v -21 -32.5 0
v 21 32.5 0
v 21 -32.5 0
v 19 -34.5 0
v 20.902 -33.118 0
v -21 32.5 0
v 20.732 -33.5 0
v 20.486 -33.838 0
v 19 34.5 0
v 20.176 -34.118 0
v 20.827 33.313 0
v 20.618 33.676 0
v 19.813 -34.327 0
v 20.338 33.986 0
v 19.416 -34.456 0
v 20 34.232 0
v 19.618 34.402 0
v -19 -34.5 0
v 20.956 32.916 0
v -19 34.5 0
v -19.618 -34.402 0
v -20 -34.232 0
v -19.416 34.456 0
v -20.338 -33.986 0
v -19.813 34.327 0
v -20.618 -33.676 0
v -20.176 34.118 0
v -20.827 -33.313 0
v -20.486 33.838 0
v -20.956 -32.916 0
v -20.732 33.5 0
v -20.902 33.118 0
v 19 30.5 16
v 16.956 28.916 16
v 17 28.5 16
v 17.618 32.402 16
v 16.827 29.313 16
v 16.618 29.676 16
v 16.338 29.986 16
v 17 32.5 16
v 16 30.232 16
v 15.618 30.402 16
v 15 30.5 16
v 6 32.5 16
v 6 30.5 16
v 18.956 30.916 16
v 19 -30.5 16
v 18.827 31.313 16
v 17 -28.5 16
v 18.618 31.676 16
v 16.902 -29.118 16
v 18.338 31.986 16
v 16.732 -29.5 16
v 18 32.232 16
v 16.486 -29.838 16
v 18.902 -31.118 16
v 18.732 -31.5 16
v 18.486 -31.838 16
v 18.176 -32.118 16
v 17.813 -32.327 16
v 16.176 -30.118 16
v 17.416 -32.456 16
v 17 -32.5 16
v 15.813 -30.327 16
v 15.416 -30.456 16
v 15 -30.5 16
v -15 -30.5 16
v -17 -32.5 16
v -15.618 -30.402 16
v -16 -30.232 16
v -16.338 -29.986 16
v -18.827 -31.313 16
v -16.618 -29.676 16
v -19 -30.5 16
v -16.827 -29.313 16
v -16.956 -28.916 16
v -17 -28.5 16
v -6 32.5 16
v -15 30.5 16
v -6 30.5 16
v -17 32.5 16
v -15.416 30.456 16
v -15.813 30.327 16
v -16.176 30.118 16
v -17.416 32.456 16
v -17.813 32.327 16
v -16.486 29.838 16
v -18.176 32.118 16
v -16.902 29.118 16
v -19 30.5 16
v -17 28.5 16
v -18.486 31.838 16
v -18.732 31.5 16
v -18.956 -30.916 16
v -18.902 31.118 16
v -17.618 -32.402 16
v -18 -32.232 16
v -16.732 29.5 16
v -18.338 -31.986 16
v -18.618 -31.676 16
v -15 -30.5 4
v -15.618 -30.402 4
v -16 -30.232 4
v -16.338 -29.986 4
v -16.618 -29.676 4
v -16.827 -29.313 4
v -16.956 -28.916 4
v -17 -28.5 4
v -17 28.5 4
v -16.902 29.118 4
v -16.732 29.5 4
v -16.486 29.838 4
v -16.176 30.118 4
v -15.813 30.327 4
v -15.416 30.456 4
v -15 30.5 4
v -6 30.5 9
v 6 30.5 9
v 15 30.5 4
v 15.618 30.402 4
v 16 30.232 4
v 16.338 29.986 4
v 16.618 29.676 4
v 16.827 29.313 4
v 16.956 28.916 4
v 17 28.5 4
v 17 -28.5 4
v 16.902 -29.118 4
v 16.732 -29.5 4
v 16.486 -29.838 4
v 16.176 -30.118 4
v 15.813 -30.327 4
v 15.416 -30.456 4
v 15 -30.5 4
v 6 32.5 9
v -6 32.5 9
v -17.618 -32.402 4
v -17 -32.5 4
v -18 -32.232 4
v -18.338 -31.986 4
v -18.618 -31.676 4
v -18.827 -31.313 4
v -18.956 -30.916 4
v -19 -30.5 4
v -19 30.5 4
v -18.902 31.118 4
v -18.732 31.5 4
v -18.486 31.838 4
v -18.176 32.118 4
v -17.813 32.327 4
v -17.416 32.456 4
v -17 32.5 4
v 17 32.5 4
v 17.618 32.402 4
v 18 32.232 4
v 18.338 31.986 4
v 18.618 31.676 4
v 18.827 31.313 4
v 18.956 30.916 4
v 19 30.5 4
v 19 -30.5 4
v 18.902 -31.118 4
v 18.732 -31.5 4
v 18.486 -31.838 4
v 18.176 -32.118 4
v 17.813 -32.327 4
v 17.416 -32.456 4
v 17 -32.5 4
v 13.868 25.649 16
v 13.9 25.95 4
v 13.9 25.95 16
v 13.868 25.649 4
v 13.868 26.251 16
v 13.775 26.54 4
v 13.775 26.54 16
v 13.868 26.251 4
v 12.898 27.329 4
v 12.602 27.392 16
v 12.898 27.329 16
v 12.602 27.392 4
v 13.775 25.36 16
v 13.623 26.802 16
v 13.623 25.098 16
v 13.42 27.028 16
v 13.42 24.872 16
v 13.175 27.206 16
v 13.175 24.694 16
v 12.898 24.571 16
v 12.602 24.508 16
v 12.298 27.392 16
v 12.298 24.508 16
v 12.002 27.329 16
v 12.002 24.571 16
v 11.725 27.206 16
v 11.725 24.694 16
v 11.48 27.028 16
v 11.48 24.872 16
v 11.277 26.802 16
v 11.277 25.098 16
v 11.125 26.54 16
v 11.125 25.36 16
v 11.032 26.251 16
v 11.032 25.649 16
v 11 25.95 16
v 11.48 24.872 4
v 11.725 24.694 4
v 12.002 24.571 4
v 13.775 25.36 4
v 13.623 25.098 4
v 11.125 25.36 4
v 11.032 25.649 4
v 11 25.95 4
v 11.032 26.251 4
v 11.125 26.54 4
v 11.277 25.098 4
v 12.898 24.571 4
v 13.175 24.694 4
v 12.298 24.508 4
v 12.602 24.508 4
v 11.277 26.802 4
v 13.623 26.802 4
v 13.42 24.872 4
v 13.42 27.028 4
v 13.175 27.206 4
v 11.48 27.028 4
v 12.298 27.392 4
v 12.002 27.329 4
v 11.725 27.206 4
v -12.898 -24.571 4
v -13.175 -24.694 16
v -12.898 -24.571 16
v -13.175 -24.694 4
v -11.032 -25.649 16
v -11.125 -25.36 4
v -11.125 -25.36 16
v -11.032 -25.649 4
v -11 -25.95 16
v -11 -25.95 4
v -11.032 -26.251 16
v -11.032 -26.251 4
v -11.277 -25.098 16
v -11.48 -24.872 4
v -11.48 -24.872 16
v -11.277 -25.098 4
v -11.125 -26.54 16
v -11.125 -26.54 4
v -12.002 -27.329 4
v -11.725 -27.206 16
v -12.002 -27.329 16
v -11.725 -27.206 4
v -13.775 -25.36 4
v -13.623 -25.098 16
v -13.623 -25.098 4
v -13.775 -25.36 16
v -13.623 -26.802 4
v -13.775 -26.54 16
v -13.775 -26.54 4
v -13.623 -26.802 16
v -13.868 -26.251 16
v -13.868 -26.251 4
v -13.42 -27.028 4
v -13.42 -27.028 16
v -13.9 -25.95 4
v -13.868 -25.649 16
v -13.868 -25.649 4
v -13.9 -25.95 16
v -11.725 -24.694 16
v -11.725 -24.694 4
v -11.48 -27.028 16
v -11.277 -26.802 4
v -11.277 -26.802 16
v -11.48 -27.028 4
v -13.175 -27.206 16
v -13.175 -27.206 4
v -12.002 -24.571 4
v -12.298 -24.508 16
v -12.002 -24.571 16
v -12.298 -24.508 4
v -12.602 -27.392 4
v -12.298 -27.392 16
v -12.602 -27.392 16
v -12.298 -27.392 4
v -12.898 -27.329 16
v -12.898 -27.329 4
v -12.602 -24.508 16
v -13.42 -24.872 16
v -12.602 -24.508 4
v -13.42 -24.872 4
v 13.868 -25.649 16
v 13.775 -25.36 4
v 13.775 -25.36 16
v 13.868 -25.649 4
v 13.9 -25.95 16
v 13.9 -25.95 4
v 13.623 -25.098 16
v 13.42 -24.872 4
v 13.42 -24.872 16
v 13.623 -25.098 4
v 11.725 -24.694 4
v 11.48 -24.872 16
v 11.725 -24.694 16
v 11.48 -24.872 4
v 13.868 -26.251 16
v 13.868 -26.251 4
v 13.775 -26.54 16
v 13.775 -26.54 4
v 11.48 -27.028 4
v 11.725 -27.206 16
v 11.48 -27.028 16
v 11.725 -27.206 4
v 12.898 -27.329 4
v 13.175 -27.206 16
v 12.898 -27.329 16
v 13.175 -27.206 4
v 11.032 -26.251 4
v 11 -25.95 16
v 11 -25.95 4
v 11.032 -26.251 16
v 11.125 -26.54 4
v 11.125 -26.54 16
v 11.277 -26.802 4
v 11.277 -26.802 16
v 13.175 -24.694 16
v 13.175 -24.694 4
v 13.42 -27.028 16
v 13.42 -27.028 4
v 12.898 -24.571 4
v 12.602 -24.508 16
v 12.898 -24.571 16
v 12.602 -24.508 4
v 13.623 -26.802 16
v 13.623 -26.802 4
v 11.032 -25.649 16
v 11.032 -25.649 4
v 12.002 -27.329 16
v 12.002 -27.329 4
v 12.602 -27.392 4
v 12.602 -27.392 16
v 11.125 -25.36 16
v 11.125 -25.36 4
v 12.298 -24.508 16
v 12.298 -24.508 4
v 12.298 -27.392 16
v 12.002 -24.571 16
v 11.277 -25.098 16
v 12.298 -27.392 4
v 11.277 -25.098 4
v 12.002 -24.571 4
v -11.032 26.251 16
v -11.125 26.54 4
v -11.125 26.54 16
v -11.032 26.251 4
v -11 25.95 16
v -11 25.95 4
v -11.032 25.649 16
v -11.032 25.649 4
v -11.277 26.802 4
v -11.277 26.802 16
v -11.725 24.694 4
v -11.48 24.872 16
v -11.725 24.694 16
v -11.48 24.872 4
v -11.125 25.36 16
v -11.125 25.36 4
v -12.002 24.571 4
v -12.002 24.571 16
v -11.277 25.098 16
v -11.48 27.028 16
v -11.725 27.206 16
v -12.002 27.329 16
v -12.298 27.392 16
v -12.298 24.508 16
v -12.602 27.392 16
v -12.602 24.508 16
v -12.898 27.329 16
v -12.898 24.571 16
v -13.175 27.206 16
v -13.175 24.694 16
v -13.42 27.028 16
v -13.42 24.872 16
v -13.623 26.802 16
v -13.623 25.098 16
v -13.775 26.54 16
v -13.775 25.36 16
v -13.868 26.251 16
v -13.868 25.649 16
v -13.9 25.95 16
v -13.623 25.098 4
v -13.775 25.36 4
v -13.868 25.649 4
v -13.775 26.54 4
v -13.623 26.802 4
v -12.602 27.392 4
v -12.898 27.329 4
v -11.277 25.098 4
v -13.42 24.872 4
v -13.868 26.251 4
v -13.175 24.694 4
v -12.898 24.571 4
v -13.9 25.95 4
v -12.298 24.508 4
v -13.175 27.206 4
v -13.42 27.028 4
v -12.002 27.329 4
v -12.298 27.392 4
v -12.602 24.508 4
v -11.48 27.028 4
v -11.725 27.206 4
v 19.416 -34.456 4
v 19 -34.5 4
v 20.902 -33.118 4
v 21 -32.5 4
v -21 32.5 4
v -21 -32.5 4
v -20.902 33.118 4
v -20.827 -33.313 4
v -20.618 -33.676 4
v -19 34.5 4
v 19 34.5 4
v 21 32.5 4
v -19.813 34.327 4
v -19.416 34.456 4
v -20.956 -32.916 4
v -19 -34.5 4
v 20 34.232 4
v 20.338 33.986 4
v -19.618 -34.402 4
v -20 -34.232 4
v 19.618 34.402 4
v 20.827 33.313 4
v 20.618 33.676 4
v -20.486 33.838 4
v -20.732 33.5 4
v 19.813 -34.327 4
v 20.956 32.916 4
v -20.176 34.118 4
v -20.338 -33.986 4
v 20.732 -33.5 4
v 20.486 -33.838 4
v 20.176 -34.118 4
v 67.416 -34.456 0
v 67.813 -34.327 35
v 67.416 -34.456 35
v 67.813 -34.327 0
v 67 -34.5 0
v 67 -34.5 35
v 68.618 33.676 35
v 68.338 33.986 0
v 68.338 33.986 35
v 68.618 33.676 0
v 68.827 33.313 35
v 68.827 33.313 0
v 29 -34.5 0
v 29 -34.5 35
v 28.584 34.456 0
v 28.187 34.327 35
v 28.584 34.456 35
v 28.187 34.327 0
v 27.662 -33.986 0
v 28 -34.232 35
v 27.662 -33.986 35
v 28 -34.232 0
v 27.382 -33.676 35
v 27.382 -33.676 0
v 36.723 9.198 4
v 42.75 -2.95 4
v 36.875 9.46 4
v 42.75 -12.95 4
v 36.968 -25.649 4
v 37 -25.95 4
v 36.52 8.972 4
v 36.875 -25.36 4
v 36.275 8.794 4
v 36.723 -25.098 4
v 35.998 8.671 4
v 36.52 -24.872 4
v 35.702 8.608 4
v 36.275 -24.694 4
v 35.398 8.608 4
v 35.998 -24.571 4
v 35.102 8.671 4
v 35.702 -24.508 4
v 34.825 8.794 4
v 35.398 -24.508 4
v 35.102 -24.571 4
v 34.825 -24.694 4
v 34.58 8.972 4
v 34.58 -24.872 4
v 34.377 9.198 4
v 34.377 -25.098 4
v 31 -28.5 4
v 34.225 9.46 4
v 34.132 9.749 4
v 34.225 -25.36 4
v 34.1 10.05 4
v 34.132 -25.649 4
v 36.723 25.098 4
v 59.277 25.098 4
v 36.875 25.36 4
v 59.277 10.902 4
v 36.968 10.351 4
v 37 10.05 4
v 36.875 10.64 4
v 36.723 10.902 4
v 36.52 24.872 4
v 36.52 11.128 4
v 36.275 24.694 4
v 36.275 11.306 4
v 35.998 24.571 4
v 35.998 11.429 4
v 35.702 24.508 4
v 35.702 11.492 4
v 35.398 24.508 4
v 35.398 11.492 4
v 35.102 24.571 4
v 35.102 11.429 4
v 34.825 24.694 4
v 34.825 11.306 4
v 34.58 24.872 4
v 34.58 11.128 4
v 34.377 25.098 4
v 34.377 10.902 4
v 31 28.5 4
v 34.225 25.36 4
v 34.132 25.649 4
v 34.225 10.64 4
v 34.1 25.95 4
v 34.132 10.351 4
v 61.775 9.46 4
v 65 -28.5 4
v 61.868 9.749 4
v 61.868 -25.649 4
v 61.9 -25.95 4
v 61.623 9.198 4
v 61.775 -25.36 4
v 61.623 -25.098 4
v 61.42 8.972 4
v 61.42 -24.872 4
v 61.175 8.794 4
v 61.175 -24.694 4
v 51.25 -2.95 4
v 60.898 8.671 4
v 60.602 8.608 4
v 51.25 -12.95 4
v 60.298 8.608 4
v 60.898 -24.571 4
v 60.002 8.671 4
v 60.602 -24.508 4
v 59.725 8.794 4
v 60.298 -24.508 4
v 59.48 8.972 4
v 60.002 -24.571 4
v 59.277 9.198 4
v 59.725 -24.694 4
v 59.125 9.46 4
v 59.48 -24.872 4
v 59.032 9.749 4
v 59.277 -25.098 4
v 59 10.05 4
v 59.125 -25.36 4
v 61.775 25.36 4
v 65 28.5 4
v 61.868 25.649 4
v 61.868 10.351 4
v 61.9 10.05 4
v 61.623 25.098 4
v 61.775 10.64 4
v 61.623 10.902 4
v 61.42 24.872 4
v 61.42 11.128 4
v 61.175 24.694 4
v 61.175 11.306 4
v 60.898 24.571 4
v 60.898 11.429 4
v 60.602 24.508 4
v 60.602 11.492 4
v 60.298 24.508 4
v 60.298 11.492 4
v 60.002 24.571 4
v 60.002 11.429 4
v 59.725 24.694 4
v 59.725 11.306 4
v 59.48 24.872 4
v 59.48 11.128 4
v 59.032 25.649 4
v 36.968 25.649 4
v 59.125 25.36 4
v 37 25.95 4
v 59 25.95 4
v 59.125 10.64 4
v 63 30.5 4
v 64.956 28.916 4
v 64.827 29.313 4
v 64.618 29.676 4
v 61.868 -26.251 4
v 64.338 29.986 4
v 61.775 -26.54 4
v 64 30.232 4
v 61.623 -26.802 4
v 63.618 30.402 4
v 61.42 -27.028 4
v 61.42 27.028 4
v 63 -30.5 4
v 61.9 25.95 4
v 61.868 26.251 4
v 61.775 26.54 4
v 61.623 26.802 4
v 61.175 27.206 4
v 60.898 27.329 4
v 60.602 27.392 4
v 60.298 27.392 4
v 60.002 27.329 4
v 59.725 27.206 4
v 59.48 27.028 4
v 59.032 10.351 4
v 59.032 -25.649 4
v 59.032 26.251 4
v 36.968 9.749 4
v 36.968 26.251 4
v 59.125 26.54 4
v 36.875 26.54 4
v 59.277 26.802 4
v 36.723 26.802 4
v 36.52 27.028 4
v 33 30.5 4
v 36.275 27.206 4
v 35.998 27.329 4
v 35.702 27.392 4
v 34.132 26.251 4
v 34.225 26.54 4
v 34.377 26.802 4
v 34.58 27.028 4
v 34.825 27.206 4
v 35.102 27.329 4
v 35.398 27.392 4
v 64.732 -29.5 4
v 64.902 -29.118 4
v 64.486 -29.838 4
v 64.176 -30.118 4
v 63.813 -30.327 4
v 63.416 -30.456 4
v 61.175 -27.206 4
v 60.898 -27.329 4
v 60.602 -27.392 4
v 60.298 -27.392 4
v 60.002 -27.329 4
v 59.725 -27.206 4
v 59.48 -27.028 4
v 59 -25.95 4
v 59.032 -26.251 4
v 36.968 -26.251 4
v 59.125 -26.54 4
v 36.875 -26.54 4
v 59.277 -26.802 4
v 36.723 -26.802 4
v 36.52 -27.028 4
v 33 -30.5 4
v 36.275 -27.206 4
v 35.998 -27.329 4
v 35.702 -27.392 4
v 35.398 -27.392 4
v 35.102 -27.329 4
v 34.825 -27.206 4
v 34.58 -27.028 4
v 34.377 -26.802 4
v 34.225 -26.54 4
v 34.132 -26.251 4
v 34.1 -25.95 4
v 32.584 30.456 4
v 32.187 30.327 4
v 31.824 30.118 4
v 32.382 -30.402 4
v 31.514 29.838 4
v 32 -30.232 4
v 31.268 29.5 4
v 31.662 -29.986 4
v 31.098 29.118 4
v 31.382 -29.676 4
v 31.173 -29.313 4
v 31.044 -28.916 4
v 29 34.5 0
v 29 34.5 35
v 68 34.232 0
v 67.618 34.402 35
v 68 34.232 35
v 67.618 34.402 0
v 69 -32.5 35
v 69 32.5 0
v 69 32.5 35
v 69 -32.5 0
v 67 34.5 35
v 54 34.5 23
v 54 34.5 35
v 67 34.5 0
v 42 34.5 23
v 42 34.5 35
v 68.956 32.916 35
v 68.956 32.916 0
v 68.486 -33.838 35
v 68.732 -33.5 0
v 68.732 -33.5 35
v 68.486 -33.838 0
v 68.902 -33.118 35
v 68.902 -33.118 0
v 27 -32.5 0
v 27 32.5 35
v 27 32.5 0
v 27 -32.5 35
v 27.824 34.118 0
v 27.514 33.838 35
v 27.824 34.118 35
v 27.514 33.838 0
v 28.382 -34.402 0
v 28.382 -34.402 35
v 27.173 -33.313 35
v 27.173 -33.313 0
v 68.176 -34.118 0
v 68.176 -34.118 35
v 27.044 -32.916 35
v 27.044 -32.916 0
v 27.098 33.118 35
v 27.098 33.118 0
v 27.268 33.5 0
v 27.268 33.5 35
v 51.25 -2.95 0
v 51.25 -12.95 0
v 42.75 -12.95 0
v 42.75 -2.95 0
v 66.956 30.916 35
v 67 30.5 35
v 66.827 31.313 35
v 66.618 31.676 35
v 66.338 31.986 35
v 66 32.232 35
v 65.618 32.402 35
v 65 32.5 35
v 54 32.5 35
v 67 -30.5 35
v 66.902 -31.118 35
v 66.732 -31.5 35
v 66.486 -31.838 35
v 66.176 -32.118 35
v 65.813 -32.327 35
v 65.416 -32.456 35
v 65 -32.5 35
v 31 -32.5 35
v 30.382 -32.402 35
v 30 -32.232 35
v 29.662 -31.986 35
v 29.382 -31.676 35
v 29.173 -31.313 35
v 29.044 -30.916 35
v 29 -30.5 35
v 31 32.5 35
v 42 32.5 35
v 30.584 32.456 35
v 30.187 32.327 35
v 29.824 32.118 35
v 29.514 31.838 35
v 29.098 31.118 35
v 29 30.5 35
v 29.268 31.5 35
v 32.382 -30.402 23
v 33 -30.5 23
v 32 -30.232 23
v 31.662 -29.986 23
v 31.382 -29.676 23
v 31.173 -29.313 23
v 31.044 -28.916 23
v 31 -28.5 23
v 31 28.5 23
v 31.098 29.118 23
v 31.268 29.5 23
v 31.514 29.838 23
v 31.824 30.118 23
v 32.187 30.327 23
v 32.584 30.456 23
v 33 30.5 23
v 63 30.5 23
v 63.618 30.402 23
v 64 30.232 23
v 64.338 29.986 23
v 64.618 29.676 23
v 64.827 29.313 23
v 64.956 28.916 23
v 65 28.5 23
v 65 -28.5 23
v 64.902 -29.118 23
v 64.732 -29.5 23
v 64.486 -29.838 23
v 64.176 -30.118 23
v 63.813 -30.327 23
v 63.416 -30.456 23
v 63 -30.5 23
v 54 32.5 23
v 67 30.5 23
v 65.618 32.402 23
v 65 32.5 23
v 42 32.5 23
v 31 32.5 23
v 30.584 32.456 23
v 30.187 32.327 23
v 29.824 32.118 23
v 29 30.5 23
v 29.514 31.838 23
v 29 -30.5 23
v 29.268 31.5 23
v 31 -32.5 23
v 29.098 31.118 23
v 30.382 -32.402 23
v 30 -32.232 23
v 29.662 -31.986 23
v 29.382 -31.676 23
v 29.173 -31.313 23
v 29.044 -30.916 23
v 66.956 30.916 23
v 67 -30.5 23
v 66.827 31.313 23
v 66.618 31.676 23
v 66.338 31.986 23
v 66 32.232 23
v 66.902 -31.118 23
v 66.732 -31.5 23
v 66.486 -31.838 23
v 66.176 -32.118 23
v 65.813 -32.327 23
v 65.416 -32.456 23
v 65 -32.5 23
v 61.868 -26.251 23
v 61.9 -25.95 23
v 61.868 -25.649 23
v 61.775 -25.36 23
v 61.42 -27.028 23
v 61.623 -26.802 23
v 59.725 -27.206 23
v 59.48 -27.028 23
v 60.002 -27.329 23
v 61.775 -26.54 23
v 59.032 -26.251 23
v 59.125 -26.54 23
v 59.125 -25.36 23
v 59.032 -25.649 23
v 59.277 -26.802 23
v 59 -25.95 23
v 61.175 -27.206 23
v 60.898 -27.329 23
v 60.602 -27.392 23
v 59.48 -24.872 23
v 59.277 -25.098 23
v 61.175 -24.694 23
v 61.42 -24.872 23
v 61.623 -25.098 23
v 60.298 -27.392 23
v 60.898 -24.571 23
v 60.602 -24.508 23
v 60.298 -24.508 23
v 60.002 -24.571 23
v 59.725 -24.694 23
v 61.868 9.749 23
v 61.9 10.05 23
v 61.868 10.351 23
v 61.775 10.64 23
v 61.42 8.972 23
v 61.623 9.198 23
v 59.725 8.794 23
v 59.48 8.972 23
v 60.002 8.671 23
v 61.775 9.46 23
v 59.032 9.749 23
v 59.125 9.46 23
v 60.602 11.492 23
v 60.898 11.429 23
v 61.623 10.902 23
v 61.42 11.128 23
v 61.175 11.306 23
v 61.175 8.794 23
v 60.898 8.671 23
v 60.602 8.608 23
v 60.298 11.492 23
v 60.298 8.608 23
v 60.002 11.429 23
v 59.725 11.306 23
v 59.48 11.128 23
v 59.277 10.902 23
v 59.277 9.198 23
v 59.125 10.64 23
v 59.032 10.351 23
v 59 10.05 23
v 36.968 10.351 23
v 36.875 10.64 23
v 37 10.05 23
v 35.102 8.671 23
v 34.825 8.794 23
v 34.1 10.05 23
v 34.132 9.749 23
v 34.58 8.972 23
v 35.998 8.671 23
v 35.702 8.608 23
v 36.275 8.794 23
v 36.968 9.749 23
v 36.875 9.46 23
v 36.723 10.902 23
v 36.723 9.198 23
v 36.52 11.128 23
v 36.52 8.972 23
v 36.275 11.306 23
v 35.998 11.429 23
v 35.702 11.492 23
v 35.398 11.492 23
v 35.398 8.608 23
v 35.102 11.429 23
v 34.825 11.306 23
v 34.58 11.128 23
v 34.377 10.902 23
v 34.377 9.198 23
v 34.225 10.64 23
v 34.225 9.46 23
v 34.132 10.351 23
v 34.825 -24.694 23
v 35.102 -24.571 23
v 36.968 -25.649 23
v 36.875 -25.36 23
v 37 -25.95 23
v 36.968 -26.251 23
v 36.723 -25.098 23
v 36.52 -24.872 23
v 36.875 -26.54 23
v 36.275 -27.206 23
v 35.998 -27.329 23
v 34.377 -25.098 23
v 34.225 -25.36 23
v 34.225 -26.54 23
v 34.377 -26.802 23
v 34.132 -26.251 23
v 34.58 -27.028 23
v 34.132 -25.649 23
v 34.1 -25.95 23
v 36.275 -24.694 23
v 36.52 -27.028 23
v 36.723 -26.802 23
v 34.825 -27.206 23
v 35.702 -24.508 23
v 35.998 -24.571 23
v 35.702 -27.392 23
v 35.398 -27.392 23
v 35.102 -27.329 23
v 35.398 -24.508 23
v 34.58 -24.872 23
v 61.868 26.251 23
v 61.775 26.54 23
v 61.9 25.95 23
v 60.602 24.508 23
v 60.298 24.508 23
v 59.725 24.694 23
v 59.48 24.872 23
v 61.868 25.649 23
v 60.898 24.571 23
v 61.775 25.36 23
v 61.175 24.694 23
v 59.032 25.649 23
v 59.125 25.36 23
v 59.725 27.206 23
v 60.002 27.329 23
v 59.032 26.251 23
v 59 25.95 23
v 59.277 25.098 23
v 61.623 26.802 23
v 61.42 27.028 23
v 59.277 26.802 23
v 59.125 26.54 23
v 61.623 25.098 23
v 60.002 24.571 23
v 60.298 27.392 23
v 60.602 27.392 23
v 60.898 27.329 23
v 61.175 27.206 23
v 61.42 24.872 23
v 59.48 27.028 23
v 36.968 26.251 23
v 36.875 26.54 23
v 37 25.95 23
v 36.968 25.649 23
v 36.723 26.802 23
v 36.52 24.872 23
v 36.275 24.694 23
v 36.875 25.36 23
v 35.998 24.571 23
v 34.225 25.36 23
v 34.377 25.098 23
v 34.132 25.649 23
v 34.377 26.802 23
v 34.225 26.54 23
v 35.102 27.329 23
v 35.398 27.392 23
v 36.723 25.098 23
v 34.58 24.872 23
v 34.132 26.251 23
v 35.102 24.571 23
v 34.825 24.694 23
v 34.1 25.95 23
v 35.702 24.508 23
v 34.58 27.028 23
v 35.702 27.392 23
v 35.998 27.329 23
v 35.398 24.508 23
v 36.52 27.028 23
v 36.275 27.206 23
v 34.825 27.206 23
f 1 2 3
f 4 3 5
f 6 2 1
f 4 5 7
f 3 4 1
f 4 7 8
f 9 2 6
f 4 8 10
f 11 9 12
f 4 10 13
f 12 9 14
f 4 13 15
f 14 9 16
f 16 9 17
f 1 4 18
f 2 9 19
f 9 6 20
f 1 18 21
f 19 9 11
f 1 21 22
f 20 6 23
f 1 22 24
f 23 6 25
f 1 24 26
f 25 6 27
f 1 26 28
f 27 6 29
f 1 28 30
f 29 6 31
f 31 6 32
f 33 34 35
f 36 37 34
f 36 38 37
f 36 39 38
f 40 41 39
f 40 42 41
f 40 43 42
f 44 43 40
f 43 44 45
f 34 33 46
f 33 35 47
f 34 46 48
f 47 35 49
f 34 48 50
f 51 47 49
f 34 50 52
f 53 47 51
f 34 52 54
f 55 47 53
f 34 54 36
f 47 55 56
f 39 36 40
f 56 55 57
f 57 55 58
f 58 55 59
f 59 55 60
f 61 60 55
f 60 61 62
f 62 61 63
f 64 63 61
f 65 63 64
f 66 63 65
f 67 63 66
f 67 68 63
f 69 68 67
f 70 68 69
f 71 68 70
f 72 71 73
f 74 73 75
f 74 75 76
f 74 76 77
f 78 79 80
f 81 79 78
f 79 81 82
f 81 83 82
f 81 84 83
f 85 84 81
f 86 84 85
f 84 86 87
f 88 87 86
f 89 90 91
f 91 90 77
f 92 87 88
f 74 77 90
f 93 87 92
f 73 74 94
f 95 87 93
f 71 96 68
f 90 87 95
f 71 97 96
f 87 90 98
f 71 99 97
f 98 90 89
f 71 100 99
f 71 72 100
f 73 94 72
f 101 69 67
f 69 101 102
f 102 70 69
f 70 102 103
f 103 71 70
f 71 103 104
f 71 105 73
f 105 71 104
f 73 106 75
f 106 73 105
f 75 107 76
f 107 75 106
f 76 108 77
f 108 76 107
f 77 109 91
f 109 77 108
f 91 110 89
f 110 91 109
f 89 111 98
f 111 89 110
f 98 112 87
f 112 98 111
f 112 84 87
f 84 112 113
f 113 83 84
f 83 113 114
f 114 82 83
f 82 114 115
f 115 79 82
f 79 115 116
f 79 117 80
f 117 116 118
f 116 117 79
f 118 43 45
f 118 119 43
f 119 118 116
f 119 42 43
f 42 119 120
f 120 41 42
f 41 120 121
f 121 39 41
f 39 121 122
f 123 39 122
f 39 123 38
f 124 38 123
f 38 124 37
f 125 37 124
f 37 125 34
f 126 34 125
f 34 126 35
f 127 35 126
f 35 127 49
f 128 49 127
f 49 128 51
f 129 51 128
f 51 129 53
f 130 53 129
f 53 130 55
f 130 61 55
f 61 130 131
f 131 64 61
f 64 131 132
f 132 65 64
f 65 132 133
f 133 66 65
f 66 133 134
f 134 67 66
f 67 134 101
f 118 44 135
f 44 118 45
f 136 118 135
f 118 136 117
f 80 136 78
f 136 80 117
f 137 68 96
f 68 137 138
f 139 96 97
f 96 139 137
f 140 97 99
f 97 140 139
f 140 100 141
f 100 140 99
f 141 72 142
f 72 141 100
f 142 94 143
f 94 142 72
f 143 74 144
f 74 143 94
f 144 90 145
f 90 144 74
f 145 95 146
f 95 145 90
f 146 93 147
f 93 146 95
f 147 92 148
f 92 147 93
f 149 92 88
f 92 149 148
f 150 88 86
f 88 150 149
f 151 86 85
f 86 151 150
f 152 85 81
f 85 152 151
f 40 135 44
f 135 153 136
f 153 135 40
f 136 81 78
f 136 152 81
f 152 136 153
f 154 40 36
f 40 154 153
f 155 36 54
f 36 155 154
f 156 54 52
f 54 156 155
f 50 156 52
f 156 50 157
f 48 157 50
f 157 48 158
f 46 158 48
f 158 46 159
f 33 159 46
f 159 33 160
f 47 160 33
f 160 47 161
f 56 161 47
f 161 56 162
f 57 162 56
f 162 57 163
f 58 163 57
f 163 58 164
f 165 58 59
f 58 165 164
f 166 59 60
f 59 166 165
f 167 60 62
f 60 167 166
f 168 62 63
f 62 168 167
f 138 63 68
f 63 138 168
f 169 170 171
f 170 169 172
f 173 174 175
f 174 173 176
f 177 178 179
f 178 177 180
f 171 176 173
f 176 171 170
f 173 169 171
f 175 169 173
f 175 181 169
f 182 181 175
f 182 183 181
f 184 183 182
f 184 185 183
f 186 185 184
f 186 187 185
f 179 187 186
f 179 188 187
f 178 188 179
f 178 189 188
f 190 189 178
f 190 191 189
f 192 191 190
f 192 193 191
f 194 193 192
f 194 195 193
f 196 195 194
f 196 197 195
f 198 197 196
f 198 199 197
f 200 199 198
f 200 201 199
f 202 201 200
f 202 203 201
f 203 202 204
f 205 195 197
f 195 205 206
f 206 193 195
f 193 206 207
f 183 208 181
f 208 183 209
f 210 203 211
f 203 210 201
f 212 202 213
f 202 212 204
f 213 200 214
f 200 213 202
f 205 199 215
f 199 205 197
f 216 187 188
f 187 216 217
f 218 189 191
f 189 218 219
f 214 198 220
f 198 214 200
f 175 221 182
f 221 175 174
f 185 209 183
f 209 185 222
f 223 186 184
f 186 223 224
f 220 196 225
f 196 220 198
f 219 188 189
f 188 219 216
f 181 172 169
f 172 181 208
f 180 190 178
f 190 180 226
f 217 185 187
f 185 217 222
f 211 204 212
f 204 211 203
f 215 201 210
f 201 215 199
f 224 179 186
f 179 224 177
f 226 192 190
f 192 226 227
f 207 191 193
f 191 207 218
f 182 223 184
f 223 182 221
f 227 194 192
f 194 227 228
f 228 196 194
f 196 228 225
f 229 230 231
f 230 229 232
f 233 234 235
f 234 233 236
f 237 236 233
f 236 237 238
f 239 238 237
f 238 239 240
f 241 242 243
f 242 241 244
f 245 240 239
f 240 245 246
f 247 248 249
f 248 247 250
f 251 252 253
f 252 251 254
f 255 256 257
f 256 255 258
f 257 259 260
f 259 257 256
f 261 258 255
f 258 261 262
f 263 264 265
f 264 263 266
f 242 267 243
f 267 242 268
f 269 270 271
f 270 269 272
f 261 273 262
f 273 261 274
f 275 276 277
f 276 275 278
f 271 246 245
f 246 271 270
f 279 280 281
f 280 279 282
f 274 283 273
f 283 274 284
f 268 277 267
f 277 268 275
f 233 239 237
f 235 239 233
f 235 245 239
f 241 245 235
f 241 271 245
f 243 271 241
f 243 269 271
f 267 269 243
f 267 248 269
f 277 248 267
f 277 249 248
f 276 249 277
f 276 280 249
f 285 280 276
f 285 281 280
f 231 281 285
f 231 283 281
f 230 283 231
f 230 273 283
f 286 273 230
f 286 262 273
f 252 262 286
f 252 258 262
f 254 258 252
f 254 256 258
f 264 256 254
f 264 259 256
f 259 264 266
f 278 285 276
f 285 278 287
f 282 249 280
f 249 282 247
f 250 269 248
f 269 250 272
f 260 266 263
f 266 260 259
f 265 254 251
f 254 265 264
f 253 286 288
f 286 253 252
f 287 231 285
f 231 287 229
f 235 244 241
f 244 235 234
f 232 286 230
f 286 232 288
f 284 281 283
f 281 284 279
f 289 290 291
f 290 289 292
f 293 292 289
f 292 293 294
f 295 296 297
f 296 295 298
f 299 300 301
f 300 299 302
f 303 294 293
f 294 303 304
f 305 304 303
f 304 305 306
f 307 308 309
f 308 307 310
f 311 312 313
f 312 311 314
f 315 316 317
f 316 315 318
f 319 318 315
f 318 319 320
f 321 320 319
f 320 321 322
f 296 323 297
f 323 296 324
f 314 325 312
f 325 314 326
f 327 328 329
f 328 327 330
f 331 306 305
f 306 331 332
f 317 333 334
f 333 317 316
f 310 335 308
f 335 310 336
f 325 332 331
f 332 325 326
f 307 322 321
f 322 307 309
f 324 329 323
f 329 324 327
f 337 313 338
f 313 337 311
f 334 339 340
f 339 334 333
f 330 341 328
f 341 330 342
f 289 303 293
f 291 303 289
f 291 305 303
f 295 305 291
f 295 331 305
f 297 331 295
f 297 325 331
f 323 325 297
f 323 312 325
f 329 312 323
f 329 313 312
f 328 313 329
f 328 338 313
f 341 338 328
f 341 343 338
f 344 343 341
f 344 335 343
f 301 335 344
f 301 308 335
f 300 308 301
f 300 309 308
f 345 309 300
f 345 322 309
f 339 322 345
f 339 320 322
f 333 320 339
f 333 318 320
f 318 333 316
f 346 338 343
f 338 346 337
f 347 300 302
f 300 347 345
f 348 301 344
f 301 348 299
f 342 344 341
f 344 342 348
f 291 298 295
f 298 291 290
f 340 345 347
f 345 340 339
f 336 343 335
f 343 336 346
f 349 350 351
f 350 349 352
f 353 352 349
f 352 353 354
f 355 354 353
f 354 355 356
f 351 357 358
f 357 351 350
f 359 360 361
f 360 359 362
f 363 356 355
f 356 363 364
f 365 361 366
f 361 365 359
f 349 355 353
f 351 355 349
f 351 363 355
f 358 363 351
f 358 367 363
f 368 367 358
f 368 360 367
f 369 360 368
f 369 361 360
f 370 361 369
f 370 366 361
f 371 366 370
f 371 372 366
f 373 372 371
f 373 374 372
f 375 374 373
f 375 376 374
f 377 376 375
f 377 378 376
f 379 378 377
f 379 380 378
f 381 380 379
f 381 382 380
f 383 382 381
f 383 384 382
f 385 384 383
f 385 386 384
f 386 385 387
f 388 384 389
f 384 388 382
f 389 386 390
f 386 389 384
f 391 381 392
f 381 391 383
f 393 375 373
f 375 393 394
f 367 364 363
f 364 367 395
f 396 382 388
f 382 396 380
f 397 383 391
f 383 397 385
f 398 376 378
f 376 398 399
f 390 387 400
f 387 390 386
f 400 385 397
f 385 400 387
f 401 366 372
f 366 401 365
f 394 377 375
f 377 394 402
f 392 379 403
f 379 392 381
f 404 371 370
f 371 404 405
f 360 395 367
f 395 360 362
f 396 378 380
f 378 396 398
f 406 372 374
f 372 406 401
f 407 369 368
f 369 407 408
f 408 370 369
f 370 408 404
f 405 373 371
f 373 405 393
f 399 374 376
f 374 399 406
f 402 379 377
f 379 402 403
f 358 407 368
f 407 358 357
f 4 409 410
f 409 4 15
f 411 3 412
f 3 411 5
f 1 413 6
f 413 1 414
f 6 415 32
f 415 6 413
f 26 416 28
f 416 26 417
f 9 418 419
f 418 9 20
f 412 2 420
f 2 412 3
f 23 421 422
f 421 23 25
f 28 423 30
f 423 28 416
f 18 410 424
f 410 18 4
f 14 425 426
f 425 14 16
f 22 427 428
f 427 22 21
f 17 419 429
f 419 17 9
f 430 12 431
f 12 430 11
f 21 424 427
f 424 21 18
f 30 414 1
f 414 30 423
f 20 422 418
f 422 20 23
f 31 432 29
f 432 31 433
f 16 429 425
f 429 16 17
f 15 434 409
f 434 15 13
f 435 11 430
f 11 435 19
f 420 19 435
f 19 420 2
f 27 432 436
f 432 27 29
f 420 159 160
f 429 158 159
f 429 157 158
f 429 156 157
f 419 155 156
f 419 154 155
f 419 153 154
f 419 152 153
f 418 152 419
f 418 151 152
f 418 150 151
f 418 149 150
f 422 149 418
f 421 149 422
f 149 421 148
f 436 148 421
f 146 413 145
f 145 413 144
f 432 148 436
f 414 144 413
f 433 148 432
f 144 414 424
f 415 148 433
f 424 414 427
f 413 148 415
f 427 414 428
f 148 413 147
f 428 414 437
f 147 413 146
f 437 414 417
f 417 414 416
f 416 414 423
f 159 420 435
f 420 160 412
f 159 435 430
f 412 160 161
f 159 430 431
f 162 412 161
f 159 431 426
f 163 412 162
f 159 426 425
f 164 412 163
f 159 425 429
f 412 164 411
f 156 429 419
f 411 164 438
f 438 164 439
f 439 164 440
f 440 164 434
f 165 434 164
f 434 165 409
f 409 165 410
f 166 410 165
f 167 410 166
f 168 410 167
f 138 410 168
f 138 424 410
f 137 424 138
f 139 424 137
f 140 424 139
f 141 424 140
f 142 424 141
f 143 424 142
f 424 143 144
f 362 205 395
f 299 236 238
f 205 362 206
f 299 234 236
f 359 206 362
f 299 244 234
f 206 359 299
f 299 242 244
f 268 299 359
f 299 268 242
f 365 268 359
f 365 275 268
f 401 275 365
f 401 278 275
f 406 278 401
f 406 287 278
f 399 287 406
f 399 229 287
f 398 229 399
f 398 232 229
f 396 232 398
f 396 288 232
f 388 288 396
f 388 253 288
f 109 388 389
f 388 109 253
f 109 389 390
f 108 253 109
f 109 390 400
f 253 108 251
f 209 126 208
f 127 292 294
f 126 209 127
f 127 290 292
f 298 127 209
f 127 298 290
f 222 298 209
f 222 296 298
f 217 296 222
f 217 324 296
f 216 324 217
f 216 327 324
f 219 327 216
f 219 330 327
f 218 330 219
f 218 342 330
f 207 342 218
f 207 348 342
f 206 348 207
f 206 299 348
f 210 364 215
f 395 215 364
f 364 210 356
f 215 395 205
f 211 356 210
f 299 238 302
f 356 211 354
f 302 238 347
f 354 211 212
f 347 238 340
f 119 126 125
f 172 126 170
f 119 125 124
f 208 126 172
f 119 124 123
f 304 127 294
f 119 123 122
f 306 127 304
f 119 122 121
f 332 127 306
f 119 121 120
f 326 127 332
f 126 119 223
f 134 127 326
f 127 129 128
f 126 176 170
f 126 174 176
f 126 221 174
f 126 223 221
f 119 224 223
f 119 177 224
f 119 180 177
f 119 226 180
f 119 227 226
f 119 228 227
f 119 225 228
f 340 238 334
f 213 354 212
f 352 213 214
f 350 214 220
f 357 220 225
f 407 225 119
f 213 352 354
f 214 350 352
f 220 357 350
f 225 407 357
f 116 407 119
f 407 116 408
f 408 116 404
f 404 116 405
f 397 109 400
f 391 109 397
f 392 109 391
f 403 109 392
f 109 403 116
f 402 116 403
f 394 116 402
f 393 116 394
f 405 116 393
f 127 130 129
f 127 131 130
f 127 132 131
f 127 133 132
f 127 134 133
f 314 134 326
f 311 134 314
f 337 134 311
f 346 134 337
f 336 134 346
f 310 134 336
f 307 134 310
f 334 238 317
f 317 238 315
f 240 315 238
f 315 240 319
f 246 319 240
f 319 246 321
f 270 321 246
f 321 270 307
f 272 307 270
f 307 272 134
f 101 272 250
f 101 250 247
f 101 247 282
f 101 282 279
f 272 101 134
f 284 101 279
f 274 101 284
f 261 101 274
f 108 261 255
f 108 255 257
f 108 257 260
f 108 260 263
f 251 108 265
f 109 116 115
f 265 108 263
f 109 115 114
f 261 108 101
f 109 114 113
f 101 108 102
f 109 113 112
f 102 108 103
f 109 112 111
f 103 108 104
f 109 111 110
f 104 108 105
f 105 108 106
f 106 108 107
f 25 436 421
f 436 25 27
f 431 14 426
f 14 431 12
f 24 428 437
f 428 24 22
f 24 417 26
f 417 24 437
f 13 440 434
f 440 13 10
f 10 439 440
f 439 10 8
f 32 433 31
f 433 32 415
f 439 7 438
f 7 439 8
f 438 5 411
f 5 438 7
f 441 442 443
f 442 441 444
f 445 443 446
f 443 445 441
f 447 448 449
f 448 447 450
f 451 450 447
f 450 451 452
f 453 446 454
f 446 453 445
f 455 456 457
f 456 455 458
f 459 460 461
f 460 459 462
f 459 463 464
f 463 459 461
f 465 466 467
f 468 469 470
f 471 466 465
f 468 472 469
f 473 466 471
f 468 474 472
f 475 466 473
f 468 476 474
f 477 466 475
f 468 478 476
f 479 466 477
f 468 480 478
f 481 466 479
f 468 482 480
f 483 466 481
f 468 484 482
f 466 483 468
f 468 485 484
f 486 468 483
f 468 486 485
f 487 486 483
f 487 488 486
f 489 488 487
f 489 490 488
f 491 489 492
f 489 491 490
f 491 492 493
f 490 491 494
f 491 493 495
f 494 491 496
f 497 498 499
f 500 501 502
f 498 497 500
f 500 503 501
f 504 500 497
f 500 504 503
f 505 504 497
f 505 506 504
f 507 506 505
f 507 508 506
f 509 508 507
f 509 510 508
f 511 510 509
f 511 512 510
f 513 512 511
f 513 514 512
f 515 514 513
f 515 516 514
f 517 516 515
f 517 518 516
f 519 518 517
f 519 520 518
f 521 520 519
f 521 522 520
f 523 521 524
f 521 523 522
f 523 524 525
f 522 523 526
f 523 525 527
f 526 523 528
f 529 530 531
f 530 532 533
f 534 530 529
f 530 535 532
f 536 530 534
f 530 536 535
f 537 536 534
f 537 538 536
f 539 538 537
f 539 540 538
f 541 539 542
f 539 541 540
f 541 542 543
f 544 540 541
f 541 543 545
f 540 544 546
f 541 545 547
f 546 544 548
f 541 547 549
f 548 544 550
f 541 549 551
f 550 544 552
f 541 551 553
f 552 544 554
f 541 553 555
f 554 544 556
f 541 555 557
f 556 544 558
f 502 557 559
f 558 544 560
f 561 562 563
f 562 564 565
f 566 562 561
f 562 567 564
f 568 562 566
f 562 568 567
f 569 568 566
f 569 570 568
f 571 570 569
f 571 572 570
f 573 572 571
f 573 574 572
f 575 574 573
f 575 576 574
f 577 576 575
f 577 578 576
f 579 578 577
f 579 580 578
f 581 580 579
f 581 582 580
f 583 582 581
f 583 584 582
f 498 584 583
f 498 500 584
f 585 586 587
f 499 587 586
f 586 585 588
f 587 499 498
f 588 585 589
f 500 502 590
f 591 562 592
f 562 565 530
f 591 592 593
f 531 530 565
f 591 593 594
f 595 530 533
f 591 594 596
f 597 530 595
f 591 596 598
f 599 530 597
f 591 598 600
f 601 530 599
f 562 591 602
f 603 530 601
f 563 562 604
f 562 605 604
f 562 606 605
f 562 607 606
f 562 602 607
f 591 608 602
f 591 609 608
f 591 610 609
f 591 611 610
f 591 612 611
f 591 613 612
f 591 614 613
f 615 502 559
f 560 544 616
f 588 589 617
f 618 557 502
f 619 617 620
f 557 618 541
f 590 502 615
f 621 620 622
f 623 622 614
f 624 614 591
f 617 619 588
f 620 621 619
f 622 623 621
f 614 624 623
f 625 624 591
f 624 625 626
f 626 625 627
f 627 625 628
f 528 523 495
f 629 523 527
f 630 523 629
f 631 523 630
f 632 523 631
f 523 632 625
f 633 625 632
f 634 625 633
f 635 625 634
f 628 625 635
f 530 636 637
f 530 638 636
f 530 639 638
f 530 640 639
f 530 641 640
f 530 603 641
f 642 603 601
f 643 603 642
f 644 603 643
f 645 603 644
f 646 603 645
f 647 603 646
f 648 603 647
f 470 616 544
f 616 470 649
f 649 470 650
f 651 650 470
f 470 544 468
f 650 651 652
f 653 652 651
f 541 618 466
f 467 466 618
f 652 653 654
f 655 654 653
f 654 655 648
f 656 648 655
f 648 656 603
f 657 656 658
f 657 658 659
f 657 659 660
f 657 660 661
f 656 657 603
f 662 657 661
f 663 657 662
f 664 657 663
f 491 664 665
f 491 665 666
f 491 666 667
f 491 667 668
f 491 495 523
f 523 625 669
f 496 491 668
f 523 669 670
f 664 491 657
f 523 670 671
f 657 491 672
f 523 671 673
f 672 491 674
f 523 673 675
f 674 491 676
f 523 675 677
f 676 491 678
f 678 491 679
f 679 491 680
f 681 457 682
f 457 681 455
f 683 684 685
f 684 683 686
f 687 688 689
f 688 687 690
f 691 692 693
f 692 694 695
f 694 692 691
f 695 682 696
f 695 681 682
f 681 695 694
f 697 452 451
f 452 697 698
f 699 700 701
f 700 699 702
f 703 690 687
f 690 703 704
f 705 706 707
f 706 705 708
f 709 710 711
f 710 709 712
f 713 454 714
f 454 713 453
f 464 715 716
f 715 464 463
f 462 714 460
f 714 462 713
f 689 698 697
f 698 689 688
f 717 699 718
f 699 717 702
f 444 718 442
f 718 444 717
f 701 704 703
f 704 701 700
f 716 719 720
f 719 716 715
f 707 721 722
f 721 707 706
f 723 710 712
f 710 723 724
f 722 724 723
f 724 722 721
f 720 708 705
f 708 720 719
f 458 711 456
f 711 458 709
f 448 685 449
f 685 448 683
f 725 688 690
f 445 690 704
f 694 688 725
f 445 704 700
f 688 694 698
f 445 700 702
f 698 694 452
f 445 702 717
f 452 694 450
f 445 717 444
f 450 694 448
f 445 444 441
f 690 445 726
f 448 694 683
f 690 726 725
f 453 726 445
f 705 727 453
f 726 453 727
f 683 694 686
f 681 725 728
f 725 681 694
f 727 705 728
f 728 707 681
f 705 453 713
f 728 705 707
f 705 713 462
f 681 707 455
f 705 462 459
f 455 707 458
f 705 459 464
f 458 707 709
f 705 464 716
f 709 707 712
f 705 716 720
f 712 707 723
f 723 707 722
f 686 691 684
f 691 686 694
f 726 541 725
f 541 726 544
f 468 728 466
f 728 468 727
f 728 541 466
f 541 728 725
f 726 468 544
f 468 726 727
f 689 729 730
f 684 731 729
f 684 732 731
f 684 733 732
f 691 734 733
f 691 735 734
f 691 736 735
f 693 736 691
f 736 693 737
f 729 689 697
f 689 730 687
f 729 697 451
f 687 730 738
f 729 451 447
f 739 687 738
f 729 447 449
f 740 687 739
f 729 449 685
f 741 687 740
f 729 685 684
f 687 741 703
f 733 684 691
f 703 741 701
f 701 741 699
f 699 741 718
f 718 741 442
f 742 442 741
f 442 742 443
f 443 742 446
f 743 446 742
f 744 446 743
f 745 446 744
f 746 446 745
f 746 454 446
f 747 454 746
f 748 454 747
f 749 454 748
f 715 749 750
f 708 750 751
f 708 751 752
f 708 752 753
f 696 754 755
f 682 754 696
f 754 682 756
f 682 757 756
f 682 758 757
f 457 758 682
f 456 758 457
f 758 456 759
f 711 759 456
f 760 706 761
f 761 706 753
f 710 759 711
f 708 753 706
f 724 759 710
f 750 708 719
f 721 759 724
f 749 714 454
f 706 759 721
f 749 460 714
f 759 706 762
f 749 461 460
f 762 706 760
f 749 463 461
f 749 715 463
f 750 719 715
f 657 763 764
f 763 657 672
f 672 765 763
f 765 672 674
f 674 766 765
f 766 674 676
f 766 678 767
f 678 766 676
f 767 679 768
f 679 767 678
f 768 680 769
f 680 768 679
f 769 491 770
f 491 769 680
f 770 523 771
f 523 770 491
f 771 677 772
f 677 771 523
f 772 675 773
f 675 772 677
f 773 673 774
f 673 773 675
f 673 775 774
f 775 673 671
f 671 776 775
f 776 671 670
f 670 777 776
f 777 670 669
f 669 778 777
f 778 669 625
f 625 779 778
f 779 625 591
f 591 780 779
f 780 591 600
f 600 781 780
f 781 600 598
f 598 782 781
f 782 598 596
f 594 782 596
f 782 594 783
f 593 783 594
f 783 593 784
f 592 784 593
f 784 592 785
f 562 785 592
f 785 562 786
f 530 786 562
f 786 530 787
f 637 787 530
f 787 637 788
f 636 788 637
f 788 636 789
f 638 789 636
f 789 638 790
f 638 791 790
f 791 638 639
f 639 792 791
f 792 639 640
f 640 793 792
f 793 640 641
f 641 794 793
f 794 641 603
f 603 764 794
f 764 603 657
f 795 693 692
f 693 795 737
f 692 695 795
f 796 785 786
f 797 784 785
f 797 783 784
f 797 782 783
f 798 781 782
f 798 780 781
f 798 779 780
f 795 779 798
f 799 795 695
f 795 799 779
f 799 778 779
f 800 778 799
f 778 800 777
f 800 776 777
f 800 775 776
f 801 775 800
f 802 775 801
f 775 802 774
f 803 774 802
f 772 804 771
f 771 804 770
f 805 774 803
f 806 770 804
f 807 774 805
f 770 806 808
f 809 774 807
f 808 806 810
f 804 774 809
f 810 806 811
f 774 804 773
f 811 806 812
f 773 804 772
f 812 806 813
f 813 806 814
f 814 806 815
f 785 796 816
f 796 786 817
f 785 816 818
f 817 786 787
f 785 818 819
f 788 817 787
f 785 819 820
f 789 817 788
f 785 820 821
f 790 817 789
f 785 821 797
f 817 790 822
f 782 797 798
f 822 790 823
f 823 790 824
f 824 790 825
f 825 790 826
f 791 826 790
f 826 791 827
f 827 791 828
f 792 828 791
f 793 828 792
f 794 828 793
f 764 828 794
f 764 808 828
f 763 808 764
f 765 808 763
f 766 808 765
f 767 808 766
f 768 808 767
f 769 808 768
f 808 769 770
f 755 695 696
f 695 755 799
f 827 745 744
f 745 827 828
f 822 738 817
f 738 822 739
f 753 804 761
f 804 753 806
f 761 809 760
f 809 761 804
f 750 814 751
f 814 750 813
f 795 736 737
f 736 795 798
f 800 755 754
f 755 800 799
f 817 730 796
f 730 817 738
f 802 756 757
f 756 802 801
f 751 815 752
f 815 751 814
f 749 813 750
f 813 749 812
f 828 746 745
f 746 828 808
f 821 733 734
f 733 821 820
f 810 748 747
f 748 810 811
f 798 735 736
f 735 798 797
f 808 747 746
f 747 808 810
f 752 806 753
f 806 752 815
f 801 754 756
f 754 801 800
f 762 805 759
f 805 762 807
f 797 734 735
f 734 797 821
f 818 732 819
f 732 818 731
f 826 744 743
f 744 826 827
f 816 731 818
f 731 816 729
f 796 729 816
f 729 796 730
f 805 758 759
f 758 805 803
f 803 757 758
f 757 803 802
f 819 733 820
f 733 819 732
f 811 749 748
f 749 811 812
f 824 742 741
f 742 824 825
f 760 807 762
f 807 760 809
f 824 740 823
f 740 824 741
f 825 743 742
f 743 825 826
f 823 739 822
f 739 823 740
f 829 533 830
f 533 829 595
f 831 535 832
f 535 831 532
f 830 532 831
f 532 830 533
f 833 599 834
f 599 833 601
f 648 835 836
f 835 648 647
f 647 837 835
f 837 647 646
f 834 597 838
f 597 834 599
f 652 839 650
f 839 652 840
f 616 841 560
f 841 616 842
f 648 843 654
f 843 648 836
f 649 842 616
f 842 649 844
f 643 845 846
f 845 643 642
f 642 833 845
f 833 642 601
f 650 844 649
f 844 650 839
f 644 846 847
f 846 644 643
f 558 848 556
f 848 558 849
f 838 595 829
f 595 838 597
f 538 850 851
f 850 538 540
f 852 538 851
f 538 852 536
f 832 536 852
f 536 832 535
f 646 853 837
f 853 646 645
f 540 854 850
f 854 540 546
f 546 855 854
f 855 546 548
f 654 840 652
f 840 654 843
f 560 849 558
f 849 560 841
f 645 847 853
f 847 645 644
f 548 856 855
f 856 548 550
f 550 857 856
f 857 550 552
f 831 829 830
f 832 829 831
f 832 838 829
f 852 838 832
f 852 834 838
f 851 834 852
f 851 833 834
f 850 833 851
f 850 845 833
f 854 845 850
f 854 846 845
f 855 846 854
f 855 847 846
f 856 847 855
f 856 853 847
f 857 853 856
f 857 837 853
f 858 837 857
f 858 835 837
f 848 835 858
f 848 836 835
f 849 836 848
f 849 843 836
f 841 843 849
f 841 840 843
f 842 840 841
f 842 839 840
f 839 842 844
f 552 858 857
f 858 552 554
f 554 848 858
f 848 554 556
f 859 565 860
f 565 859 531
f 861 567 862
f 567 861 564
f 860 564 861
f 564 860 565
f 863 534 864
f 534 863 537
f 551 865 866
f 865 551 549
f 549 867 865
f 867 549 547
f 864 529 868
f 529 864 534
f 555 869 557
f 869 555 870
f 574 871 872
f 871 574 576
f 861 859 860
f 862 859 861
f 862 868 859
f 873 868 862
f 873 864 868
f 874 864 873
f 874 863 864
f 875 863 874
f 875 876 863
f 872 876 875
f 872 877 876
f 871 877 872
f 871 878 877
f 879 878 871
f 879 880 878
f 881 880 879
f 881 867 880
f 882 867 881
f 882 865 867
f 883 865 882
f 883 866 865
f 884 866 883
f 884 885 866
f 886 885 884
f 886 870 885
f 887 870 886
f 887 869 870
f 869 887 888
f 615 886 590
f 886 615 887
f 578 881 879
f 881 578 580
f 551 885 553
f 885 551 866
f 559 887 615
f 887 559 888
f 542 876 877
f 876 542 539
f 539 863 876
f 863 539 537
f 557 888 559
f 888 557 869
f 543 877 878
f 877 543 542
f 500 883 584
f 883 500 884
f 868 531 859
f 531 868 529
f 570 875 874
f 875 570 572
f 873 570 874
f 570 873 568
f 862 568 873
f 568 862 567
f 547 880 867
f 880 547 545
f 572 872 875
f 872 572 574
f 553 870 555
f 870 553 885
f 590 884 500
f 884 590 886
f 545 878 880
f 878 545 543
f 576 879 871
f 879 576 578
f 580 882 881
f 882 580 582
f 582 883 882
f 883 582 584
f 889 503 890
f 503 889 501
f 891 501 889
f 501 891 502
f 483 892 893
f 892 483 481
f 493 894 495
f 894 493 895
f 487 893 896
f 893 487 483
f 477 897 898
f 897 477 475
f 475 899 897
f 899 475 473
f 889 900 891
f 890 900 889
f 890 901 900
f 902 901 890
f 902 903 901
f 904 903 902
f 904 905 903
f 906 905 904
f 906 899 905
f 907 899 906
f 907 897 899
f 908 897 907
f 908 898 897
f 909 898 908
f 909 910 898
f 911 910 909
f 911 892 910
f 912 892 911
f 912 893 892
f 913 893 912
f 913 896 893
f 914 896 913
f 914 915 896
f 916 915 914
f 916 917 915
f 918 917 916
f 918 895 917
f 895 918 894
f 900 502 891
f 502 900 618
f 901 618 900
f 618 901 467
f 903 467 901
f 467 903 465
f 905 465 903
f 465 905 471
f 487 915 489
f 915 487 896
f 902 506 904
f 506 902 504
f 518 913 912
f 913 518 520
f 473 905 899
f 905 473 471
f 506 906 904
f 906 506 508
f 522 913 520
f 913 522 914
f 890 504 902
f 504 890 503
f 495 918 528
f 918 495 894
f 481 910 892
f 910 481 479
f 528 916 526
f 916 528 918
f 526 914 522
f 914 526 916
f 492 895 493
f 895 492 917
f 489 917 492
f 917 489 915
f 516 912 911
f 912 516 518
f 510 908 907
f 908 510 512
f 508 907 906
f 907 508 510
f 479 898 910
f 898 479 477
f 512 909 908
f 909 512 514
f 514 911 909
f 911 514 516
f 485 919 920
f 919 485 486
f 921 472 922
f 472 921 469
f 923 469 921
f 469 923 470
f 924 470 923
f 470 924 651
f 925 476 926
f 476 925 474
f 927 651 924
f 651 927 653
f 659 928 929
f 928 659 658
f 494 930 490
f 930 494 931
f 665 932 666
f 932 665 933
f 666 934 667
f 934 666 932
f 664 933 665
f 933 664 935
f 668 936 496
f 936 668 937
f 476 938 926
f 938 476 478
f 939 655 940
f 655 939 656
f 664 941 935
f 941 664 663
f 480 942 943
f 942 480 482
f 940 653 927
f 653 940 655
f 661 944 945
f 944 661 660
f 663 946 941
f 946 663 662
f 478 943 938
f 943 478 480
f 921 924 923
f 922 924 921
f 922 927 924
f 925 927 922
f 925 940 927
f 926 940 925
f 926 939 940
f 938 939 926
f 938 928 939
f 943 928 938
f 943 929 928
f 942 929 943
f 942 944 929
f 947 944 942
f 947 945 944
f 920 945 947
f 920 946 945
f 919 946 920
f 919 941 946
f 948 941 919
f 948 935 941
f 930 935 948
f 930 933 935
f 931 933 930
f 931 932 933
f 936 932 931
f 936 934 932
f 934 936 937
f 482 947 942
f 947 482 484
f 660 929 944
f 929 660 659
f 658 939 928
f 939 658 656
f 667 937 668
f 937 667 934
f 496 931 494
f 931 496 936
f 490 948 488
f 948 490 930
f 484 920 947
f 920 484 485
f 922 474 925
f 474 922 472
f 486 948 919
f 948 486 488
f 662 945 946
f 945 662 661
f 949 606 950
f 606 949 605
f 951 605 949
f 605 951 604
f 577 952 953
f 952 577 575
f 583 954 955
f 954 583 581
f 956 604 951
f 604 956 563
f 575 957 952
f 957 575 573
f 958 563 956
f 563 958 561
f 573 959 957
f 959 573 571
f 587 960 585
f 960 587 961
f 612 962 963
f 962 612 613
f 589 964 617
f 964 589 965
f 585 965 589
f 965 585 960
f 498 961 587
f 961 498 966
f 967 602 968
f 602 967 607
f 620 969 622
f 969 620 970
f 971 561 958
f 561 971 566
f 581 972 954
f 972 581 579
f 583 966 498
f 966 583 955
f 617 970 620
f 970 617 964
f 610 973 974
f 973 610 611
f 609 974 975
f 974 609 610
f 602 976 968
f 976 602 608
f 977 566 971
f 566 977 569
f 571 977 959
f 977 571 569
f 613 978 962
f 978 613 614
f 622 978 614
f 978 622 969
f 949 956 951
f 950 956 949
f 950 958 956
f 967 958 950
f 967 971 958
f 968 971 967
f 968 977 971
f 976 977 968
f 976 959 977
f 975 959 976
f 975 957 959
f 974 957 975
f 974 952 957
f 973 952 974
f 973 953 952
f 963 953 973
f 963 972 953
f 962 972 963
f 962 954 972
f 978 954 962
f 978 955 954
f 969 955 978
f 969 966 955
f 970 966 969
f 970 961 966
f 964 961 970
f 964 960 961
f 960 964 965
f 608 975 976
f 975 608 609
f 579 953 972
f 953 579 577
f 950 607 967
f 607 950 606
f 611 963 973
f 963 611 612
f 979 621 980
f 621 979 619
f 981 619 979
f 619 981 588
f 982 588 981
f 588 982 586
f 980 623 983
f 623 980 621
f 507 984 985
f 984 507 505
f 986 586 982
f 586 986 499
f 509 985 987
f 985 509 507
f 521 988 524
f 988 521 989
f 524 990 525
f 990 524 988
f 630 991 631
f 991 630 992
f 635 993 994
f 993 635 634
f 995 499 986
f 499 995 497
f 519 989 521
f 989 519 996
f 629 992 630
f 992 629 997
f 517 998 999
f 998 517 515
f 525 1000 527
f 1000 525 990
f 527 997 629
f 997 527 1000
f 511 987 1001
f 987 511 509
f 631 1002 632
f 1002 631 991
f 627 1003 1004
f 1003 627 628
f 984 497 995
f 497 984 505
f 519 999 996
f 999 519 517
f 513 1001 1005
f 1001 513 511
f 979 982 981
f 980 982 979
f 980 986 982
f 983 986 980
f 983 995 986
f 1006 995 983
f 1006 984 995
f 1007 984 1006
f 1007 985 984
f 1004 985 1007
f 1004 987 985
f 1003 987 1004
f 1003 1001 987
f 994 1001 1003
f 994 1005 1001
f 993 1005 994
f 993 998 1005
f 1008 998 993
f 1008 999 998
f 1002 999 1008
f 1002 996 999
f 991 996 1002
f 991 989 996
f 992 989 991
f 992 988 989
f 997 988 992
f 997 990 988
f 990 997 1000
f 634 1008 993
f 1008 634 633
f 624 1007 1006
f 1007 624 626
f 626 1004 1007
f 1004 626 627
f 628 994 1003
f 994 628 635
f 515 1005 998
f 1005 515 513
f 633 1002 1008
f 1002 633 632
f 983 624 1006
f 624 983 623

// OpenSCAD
$fs = 0.01;
PADDING = 2;

WALL_THICKNESS = 4;

BOX_W = 30 + 2*PADDING + WALL_THICKNESS; // Width (X)
BOX_L = 57 + 2*PADDING + WALL_THICKNESS; // Length (Y)
BOX_H = 35; // Height (Z)

CORNER_RADIUS = 2;

USB_HOLE_W = 10 + PADDING;
USB_HOLE_D = WALL_THICKNESS + PADDING;
USB_HOLE_H = 5 + PADDING;

SENSOR_HOLE_W = 8.5;
SENSOR_HOLE_D = 10;
SENSOR_HOLE_H = WALL_THICKNESS + PADDING;

PIN_DIAMETER = 2.9;
PIN_CORRECTION = 0.55 - WALL_THICKNESS - PADDING - 1 - 0.1;

// First box
translate([0,0,0]) {
    render() {
        difference() {
            // Walls
            linear_extrude(USB_HOLE_H + WALL_THICKNESS + 5)
                difference() {
                    offset(r=CORNER_RADIUS)
                        square([BOX_W, BOX_L], center = true);
                    offset(r=CORNER_RADIUS)
                        square([BOX_W - 2 * WALL_THICKNESS, BOX_L - 2 * WALL_THICKNESS], center = true);
                };
            // USB Micro-B hole
            translate([0, BOX_L / 2, USB_HOLE_H / 2 + WALL_THICKNESS + 5])
                cube([USB_HOLE_W, USB_HOLE_D, USB_HOLE_H], center = true);
            
            // Closing mechanism
            linear_extrude(USB_HOLE_H + WALL_THICKNESS + 5)
                difference() {
                    offset(r=CORNER_RADIUS)
                        square( [BOX_W, BOX_L], center = true );
                    offset(r=CORNER_RADIUS)
                        square( [BOX_W - WALL_THICKNESS, BOX_L - WALL_THICKNESS], center = true );
                }
        }
    }

    // Pins to hold the board in place
    translate([BOX_W / 2 + PIN_CORRECTION, BOX_L / 2 + PIN_CORRECTION, 0]) 
        linear_extrude(WALL_THICKNESS + USB_HOLE_H + 5)
            circle(d = PIN_DIAMETER);
    translate([- BOX_W / 2 -PIN_CORRECTION, - BOX_L / 2 - PIN_CORRECTION, 0]) 
        linear_extrude(WALL_THICKNESS + USB_HOLE_H + 5)
            circle(d = PIN_DIAMETER);
    translate([BOX_W / 2 + PIN_CORRECTION, - BOX_L / 2 - PIN_CORRECTION, 0]) 
        linear_extrude(WALL_THICKNESS + USB_HOLE_H + 5)
            circle(d = PIN_DIAMETER);
    translate([- BOX_W / 2 - PIN_CORRECTION, BOX_L / 2 + PIN_CORRECTION, 0]) 
        linear_extrude(WALL_THICKNESS + USB_HOLE_H + 5)
            circle(d = PIN_DIAMETER);

    // Bottom
    linear_extrude(WALL_THICKNESS) offset(r=CORNER_RADIUS) square( [BOX_W, BOX_L], center = true );
}

// Second box
translate([BOX_W + PADDING * 5, 0, 0]) {
    render() {
        difference() {
            // Walls
            linear_extrude(BOX_H)
                difference() {
                    offset(r=CORNER_RADIUS)
                        square([BOX_W, BOX_L], center = true);
                    offset(r=CORNER_RADIUS)
                        square([BOX_W - 2 * WALL_THICKNESS, BOX_L - 2 * WALL_THICKNESS], center = true);
                };
            // USB Micro-B hole
            translate([0, BOX_L / 2, BOX_H - USB_HOLE_H/2 - 5/2])
                cube([USB_HOLE_W, USB_HOLE_D, USB_HOLE_H + 5], center = true);
            
            // Closing mechanism
           translate([0, 0, BOX_H - USB_HOLE_H - 5]) linear_extrude(USB_HOLE_H + 5 + PADDING)
                    offset(r=CORNER_RADIUS)
                        square( [BOX_W - WALL_THICKNESS, BOX_L - WALL_THICKNESS], center = true );
    }
    }

    // Pins to hold the board in place
    translate([BOX_W / 2 + PIN_CORRECTION, - BOX_L / 2 - PIN_CORRECTION, 0]) 
        linear_extrude(BOX_H - USB_HOLE_H - 5)
            circle(d = PIN_DIAMETER);
    
    translate([BOX_W / 2 + PIN_CORRECTION, - BOX_L / 2 - PIN_CORRECTION + 36, 0]) 
        linear_extrude(BOX_H - USB_HOLE_H - 5)
            circle(d = PIN_DIAMETER);
    
    
   translate([- BOX_W / 2 - PIN_CORRECTION, - BOX_L / 2 - PIN_CORRECTION + 36, 0]) 
        linear_extrude(BOX_H - USB_HOLE_H - 5)
            circle(d = PIN_DIAMETER);

    translate([- BOX_W / 2 - PIN_CORRECTION, - BOX_L / 2 - PIN_CORRECTION, 0]) 
        linear_extrude(BOX_H - USB_HOLE_H - 5)
            circle(d = PIN_DIAMETER);


    translate([BOX_W / 2 + PIN_CORRECTION, BOX_L / 2 + PIN_CORRECTION, 0]) 
        linear_extrude(BOX_H - USB_HOLE_H - 5)
            circle(d = PIN_DIAMETER);
    
    translate([- BOX_W / 2 - PIN_CORRECTION, BOX_L / 2 + PIN_CORRECTION, 0]) 
        linear_extrude(BOX_H - USB_HOLE_H - 5)
            circle(d = PIN_DIAMETER);

   // Bottom
    difference() {
       linear_extrude(WALL_THICKNESS) offset(r=CORNER_RADIUS)
        square( [BOX_W, BOX_L], center = true );
       translate([-1, 36 / 2 - PIN_CORRECTION - BOX_L / 2, SENSOR_HOLE_H / 2])
        cube([SENSOR_HOLE_W, SENSOR_HOLE_D, SENSOR_HOLE_H], center = true);
    }
}
